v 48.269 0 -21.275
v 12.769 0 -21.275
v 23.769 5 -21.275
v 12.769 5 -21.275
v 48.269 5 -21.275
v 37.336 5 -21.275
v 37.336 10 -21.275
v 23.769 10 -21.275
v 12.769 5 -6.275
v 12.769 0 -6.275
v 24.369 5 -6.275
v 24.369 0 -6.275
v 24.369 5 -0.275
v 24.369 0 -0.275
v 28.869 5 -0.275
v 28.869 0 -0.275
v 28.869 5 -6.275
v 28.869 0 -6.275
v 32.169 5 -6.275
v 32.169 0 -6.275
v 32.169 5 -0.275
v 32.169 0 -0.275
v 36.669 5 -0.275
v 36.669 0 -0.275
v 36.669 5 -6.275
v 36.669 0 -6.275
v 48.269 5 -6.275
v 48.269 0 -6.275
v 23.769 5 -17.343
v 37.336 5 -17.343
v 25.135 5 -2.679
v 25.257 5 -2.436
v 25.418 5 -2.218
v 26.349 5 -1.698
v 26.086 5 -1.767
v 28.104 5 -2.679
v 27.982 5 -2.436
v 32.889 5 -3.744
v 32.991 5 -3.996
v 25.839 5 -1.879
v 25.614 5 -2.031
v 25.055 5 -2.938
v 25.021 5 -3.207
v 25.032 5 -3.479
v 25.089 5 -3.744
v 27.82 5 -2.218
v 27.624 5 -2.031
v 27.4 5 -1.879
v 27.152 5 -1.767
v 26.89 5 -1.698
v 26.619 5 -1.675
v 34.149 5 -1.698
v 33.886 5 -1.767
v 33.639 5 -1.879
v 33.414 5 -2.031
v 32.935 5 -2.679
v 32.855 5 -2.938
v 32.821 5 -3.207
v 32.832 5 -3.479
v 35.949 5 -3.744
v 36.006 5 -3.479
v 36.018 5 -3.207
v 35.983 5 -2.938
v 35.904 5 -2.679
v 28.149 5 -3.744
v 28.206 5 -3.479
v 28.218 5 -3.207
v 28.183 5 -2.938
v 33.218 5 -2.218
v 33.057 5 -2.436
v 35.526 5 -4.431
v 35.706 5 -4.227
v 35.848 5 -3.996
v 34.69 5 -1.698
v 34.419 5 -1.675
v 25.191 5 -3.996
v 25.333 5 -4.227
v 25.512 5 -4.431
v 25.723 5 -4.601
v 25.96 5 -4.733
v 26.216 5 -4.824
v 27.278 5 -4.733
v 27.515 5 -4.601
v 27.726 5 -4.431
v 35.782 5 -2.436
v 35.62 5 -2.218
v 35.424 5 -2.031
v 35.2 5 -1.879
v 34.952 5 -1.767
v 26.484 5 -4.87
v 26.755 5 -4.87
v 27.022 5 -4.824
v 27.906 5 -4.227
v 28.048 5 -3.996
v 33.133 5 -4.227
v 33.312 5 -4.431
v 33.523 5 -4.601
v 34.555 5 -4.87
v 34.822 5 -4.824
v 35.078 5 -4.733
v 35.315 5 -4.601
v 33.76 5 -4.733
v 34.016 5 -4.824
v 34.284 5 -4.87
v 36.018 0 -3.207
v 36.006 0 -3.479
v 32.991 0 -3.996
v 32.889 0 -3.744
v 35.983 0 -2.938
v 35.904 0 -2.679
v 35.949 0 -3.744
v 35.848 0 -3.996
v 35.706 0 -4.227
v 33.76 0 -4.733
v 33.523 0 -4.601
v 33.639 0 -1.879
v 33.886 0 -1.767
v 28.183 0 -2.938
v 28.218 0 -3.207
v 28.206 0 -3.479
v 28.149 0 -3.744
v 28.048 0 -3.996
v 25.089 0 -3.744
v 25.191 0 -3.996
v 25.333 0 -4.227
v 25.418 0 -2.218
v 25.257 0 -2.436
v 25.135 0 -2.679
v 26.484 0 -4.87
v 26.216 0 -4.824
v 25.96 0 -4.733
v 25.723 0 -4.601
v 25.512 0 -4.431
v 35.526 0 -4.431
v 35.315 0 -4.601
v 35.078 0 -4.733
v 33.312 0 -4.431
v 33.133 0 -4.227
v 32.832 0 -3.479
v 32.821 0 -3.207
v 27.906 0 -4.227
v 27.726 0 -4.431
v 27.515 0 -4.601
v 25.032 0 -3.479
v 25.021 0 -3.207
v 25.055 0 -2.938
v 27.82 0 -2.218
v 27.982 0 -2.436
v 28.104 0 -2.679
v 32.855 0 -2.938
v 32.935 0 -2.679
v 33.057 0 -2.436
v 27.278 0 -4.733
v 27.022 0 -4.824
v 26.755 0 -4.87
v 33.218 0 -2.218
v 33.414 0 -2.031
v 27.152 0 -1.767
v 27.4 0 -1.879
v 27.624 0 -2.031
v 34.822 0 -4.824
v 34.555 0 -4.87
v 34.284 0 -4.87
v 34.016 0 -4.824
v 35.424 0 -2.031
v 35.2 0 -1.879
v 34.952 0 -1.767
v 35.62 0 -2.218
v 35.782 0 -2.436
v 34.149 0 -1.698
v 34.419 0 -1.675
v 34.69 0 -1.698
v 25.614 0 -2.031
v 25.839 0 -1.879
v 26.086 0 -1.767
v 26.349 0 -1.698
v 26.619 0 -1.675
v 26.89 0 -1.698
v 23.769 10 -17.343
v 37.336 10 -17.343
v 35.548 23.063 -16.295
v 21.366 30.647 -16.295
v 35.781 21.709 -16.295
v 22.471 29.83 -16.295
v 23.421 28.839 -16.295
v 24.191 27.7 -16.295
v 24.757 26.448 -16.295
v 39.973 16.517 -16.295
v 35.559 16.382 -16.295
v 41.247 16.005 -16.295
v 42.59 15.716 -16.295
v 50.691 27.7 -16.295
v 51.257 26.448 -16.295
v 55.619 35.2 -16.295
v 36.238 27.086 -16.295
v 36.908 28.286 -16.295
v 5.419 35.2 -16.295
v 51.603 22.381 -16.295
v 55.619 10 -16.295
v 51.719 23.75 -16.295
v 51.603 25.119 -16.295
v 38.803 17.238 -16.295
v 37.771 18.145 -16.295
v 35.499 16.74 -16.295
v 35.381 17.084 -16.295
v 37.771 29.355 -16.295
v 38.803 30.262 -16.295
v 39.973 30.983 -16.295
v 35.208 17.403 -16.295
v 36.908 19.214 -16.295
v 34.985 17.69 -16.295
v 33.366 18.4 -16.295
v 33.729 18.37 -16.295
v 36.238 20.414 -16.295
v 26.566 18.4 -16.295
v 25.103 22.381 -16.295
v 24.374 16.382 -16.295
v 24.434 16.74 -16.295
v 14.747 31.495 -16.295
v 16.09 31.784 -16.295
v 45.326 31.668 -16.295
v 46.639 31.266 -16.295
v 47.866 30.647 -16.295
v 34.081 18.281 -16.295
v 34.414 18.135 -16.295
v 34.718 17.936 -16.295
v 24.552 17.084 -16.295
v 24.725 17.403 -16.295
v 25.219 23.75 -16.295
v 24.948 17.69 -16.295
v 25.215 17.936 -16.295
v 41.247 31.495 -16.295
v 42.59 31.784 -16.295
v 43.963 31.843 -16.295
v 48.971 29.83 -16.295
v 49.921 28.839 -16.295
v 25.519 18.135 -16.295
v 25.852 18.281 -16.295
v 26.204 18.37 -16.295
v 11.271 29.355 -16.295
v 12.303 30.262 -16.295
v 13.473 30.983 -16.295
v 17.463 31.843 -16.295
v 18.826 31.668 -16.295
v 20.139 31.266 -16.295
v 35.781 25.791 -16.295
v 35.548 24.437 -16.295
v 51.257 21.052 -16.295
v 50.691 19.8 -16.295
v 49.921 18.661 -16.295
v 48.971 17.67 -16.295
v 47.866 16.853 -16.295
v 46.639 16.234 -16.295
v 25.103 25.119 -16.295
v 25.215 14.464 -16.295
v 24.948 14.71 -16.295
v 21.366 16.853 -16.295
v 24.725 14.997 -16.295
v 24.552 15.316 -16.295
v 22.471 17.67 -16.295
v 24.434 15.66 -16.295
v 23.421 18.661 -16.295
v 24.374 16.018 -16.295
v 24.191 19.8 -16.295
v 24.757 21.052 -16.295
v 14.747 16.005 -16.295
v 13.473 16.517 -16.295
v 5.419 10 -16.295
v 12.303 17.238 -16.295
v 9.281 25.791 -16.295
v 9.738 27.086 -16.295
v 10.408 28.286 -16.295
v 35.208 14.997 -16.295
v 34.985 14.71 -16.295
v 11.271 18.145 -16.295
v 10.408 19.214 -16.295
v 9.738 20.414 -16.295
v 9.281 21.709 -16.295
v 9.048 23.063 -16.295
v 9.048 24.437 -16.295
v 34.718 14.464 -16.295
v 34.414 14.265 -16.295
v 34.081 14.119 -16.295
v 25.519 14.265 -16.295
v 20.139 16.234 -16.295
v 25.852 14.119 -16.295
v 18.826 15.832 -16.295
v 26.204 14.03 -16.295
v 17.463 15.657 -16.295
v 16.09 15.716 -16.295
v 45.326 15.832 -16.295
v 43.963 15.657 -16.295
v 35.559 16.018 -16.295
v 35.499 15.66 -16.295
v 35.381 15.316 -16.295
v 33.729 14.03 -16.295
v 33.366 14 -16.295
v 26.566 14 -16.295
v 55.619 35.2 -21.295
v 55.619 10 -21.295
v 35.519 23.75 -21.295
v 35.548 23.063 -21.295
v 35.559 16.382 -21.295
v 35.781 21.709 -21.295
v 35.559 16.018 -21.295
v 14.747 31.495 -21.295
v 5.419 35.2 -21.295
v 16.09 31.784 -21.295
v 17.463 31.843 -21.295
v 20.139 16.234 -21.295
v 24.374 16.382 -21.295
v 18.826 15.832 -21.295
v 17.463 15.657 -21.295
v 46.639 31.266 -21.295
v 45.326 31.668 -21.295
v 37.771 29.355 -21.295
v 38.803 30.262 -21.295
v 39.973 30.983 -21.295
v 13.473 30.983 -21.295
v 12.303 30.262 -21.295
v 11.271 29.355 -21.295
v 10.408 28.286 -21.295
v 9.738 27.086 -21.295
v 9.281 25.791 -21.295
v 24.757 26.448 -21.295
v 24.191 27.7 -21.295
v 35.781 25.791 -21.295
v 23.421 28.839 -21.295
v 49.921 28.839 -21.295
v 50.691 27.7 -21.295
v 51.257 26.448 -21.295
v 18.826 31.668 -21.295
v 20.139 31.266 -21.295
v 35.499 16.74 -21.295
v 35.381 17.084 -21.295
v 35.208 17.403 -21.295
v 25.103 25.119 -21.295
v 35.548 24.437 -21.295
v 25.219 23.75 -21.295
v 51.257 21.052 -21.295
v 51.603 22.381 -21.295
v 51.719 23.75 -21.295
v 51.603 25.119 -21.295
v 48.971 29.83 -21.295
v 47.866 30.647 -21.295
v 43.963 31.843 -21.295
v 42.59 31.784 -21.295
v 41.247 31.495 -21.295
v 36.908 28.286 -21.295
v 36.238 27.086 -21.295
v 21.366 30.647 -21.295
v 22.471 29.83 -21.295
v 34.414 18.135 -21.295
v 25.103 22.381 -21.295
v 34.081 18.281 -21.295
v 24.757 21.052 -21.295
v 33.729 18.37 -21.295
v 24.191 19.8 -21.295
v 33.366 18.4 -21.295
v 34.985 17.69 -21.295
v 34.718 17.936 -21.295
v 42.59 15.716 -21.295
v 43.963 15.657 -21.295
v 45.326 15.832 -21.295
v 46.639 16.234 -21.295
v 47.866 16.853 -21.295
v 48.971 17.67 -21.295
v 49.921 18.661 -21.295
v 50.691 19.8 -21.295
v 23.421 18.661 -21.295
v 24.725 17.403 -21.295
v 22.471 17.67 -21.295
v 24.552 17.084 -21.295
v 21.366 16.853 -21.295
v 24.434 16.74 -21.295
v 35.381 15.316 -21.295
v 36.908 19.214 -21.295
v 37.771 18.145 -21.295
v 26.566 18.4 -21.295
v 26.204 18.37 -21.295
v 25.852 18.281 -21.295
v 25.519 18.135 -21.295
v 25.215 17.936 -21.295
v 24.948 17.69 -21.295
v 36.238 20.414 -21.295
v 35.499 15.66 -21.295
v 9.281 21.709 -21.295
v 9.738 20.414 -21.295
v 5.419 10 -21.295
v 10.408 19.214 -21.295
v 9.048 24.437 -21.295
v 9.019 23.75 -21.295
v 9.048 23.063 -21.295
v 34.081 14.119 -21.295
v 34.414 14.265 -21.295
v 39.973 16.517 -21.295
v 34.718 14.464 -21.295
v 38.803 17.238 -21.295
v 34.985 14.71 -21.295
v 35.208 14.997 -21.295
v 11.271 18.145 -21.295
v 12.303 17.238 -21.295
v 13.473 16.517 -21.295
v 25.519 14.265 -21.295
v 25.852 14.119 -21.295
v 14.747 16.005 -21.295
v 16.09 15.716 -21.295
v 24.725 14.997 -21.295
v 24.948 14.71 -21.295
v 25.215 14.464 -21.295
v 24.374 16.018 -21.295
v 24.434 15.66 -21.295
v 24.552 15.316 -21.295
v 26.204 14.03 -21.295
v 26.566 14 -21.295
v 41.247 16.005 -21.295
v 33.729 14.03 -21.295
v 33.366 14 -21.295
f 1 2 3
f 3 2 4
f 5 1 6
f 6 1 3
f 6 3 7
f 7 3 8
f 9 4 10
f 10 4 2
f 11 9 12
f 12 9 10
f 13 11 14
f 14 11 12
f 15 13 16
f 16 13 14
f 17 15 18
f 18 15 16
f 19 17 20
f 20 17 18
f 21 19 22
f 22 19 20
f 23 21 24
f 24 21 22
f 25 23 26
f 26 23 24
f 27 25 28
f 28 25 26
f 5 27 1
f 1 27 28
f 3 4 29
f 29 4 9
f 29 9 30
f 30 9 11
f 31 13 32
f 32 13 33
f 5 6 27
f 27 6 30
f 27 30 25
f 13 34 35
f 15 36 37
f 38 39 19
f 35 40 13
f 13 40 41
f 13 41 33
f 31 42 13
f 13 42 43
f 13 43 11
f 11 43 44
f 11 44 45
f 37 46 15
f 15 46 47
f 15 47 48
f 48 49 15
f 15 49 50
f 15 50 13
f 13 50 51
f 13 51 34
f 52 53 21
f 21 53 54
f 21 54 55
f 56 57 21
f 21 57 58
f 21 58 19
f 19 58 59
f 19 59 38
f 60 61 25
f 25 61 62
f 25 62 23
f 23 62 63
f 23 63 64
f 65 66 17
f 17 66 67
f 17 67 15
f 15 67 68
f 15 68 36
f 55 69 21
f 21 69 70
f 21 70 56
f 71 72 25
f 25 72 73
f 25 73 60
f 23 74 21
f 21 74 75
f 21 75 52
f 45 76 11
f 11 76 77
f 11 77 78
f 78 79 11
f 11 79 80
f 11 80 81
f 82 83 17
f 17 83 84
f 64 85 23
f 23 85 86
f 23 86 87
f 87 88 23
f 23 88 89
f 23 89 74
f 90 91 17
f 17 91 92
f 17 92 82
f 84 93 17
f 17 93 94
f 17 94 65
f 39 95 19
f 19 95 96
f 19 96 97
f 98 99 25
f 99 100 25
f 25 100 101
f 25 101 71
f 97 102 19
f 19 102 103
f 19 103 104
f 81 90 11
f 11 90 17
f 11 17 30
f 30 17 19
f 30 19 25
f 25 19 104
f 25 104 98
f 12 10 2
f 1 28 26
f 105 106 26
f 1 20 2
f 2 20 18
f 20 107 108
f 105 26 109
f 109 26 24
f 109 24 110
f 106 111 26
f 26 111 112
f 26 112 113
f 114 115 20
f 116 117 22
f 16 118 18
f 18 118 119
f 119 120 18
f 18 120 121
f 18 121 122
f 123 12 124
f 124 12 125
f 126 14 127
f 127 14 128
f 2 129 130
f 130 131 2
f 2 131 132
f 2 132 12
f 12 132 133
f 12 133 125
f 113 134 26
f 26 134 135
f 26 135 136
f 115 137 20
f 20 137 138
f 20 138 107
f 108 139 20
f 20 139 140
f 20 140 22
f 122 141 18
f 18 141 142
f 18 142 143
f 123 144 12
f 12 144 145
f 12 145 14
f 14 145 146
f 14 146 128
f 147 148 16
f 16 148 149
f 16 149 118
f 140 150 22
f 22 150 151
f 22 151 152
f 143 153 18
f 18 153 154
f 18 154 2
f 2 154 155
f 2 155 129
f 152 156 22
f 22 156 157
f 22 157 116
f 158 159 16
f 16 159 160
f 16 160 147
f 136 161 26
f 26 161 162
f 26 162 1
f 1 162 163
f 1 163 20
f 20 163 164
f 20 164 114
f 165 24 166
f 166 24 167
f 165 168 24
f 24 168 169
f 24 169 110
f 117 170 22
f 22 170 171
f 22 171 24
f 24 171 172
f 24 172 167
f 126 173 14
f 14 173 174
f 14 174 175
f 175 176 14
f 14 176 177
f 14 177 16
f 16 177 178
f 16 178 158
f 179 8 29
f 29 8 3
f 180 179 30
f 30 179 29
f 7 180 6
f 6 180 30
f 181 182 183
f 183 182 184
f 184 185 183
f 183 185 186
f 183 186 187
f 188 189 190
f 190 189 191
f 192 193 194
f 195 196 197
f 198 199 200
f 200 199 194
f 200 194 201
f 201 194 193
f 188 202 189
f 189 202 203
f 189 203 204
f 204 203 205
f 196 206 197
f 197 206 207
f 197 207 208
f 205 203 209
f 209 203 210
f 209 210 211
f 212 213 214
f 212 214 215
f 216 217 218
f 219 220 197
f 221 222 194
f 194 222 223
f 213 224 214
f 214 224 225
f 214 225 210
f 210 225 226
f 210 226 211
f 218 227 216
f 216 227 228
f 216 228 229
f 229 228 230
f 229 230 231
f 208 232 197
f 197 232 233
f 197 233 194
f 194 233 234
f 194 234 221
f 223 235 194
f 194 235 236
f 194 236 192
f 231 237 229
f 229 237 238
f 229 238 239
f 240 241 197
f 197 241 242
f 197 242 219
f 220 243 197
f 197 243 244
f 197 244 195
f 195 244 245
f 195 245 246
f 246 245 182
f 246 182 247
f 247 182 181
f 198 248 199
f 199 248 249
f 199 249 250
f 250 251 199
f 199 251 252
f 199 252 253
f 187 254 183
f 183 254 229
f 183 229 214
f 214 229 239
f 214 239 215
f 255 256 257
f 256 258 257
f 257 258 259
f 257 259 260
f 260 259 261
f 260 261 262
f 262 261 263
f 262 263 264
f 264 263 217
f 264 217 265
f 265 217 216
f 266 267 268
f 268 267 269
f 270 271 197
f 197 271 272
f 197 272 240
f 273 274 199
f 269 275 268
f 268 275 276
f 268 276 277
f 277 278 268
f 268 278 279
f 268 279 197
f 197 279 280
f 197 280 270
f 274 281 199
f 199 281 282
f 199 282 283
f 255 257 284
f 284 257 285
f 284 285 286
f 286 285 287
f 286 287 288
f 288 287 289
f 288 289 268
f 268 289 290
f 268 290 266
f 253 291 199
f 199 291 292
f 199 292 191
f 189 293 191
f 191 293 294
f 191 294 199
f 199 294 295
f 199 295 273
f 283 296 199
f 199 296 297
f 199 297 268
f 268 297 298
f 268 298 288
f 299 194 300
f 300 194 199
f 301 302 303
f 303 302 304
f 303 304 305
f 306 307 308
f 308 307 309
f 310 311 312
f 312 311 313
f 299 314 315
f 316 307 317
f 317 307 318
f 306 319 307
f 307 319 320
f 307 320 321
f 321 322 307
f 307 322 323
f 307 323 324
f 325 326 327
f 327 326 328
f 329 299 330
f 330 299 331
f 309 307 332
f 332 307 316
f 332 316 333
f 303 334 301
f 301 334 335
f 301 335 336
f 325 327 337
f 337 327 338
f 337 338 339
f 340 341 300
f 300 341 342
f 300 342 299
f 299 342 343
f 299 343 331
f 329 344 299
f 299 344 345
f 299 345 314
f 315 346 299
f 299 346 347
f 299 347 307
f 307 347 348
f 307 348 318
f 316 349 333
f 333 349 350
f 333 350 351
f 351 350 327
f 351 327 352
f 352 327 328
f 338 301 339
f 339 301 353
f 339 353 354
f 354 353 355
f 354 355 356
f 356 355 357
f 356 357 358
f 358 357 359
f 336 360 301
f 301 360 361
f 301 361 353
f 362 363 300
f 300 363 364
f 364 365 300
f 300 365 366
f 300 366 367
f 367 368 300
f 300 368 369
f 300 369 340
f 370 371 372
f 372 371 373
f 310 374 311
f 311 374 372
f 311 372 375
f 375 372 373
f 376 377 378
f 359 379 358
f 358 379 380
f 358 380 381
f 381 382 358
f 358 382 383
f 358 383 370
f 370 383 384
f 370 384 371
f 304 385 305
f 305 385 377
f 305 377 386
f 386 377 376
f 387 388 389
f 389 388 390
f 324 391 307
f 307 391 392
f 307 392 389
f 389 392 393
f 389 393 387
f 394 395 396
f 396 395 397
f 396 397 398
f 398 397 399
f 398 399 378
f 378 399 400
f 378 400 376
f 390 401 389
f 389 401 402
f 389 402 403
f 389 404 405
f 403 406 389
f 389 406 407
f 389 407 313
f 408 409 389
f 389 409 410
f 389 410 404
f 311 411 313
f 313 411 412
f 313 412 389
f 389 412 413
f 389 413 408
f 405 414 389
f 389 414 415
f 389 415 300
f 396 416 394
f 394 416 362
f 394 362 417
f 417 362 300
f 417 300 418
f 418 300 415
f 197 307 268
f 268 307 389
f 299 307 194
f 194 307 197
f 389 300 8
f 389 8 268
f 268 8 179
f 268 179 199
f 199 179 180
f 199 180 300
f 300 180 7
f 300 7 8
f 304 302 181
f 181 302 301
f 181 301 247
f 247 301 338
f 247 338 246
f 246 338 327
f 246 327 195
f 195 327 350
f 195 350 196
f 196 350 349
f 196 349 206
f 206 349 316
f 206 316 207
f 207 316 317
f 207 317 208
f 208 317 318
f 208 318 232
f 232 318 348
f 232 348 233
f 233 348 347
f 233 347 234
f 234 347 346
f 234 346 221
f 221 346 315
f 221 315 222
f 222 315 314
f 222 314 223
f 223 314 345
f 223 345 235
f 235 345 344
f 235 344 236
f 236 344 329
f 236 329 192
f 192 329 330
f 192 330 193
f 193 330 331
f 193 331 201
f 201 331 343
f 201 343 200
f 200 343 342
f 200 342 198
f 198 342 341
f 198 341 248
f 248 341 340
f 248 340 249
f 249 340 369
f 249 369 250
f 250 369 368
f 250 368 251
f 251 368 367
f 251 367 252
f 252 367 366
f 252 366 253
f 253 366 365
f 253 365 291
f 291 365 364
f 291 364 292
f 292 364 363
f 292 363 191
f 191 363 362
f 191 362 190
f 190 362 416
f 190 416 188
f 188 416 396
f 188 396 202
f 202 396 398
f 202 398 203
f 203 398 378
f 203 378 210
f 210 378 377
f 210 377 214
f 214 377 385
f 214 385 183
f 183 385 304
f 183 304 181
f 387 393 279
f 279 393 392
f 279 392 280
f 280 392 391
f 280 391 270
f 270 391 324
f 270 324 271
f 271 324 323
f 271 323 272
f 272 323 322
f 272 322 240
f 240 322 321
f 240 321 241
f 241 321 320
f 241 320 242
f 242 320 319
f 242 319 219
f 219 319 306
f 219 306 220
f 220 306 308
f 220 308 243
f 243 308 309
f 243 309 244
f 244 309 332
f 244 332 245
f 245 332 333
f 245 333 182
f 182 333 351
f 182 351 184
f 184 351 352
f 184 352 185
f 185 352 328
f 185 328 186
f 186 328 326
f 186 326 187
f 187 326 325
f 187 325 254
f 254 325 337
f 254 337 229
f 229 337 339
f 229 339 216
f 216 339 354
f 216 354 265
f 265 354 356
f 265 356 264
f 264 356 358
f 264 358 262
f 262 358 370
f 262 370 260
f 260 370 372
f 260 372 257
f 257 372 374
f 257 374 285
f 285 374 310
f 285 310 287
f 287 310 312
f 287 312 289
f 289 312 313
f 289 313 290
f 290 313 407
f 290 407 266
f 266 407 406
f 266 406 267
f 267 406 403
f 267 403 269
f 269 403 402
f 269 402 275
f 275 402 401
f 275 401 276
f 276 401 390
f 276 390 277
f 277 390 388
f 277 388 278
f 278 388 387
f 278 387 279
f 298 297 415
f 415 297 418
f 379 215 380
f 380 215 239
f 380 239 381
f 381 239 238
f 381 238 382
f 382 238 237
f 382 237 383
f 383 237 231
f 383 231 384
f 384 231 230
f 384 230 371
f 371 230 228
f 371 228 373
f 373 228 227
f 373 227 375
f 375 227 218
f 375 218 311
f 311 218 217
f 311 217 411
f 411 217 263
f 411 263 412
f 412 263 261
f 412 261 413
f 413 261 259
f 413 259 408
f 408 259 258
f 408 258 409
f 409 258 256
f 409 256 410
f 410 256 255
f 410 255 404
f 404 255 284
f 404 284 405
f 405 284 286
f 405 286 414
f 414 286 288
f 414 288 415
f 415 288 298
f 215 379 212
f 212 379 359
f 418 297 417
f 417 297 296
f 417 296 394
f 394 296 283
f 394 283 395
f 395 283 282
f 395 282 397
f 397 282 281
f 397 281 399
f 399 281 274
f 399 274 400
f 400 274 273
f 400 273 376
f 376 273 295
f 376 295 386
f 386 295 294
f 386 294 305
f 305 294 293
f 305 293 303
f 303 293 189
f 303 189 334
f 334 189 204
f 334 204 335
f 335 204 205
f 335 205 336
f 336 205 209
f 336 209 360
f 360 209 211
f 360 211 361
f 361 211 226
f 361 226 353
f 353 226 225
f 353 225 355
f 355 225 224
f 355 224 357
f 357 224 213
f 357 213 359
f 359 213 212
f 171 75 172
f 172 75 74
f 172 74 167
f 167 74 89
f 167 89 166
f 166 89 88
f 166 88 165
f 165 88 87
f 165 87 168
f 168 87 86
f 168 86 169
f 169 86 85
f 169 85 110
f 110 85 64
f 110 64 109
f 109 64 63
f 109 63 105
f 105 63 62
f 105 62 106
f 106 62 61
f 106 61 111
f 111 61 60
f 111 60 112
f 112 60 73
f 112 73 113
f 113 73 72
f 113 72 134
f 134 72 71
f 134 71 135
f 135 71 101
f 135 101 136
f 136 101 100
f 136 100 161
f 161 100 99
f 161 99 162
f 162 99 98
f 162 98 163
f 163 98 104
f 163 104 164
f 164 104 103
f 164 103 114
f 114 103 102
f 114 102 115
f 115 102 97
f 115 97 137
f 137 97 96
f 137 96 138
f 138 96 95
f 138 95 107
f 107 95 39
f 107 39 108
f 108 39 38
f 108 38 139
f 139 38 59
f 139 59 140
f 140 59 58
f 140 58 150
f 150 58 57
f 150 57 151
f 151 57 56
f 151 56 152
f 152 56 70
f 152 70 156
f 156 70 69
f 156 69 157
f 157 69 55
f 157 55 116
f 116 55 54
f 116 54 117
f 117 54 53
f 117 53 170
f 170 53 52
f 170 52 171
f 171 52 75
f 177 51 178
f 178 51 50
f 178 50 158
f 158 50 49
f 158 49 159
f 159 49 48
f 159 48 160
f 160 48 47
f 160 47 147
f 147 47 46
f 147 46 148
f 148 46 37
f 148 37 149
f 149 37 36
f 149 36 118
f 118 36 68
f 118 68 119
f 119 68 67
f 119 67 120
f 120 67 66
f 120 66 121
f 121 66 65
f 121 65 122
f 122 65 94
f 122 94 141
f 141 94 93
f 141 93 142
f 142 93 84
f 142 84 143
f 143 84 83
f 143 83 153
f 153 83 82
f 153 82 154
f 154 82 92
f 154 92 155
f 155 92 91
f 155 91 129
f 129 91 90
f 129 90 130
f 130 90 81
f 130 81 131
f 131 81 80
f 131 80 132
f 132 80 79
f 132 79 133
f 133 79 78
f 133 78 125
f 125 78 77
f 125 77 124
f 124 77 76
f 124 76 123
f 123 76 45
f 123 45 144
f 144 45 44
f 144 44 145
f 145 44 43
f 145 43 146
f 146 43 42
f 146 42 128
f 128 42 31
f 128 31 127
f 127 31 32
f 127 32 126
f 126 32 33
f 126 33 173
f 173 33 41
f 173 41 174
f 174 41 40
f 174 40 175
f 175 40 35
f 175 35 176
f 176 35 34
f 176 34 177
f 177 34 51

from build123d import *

# Parameters (mm, degrees)
BOSS_EXTRUDE7_DEPTH = 5
SKETCH5_W           = 13.567085075
SKETCH5_H           = 3.932792286
BOSS_EXTRUDE8_DEPTH = 5
SKETCH6_W           = 50.2
SKETCH6_H           = 5
BOSS_EXTRUDE9_DEPTH = 25.2
SKETCH7_R           = 8.1
CUT_EXTRUDE1_DEPTH  = 10
CUT_EXTRUDE2_DEPTH  = 10
SKETCH9_R           = 1.6
CUT_EXTRUDE4_DEPTH  = 10


with BuildPart() as part:
    # Sketch1 → Boss-Extrude7 (new body)
    with BuildSketch(Plane(origin=(0, 0, 0), x_dir=(1, 0, 0), z_dir=(0, 1, 0))):
        Polygon((12.769214264, 6.275388257), (24.369214264, 6.275388257), (24.369214264, 0.275388257), (28.869214264, 0.275388257), (28.869214264, 6.275388257), (32.169214264, 6.275388257), (32.169214264, 0.275388257), (36.669214264, 0.275388257), (36.669214264, 6.275388257), (48.269214264, 6.275388257), (48.269214264, 21.275388257), (12.769214264, 21.275388257), align=None)
    extrude(amount=BOSS_EXTRUDE7_DEPTH)

    # Sketch5 → Boss-Extrude8 (add)
    with BuildSketch(Plane(origin=(0, 5, 0), x_dir=(1, 0, 0), z_dir=(0, 1, 0))):
        with Locations((30.552756802, 19.308992114)):
            Rectangle(SKETCH5_W, SKETCH5_H)
    extrude(amount=BOSS_EXTRUDE8_DEPTH)

    # Sketch6 → Boss-Extrude9 (add)
    with BuildSketch(Plane(origin=(1.124638213, 10, 0), x_dir=(1, 0, 0), z_dir=(0, 1, 0))):
        with Locations((29.394576051, 18.794771585)):
            Rectangle(SKETCH6_W, SKETCH6_H)
    extrude(amount=BOSS_EXTRUDE9_DEPTH)

    # Sketch7 → Cut-Extrude1 (cut)
    with BuildSketch(Plane.XY.offset(-16.294771585)):
        with Locations((43.619214264, 23.75)):
            Circle(SKETCH7_R)
        with Locations((17.119214264, 23.75)):
            Circle(SKETCH7_R)
    extrude(amount=-CUT_EXTRUDE1_DEPTH, mode=Mode.SUBTRACT)

    # Sketch7<3> → Cut-Extrude2 (cut)
    with BuildSketch(Plane.XY.offset(-16.294771585)):
        with BuildLine():
            Line((33.366421185, 18.4), (26.566421185, 18.4))
            ThreePointArc((26.566421185, 18.4), (24.366421185, 16.2), (26.566421185, 14))
            Line((26.566421185, 14), (33.366421185, 14))
            ThreePointArc((33.366421185, 14), (35.566421185, 16.2), (33.366421185, 18.4))
        make_face()
    extrude(amount=-CUT_EXTRUDE2_DEPTH, mode=Mode.SUBTRACT)

    # Sketch9 → Cut-Extrude4 (cut)
    with BuildSketch(Plane(origin=(0, 5, 0), x_dir=(1, 0, 0), z_dir=(0, 1, 0))):
        with Locations((26.619214264, 3.275388257)):
            Circle(SKETCH9_R)
        with Locations((34.419214264, 3.275388257)):
            Circle(SKETCH9_R)
    extrude(amount=-CUT_EXTRUDE4_DEPTH, mode=Mode.SUBTRACT)


solid = part.part
